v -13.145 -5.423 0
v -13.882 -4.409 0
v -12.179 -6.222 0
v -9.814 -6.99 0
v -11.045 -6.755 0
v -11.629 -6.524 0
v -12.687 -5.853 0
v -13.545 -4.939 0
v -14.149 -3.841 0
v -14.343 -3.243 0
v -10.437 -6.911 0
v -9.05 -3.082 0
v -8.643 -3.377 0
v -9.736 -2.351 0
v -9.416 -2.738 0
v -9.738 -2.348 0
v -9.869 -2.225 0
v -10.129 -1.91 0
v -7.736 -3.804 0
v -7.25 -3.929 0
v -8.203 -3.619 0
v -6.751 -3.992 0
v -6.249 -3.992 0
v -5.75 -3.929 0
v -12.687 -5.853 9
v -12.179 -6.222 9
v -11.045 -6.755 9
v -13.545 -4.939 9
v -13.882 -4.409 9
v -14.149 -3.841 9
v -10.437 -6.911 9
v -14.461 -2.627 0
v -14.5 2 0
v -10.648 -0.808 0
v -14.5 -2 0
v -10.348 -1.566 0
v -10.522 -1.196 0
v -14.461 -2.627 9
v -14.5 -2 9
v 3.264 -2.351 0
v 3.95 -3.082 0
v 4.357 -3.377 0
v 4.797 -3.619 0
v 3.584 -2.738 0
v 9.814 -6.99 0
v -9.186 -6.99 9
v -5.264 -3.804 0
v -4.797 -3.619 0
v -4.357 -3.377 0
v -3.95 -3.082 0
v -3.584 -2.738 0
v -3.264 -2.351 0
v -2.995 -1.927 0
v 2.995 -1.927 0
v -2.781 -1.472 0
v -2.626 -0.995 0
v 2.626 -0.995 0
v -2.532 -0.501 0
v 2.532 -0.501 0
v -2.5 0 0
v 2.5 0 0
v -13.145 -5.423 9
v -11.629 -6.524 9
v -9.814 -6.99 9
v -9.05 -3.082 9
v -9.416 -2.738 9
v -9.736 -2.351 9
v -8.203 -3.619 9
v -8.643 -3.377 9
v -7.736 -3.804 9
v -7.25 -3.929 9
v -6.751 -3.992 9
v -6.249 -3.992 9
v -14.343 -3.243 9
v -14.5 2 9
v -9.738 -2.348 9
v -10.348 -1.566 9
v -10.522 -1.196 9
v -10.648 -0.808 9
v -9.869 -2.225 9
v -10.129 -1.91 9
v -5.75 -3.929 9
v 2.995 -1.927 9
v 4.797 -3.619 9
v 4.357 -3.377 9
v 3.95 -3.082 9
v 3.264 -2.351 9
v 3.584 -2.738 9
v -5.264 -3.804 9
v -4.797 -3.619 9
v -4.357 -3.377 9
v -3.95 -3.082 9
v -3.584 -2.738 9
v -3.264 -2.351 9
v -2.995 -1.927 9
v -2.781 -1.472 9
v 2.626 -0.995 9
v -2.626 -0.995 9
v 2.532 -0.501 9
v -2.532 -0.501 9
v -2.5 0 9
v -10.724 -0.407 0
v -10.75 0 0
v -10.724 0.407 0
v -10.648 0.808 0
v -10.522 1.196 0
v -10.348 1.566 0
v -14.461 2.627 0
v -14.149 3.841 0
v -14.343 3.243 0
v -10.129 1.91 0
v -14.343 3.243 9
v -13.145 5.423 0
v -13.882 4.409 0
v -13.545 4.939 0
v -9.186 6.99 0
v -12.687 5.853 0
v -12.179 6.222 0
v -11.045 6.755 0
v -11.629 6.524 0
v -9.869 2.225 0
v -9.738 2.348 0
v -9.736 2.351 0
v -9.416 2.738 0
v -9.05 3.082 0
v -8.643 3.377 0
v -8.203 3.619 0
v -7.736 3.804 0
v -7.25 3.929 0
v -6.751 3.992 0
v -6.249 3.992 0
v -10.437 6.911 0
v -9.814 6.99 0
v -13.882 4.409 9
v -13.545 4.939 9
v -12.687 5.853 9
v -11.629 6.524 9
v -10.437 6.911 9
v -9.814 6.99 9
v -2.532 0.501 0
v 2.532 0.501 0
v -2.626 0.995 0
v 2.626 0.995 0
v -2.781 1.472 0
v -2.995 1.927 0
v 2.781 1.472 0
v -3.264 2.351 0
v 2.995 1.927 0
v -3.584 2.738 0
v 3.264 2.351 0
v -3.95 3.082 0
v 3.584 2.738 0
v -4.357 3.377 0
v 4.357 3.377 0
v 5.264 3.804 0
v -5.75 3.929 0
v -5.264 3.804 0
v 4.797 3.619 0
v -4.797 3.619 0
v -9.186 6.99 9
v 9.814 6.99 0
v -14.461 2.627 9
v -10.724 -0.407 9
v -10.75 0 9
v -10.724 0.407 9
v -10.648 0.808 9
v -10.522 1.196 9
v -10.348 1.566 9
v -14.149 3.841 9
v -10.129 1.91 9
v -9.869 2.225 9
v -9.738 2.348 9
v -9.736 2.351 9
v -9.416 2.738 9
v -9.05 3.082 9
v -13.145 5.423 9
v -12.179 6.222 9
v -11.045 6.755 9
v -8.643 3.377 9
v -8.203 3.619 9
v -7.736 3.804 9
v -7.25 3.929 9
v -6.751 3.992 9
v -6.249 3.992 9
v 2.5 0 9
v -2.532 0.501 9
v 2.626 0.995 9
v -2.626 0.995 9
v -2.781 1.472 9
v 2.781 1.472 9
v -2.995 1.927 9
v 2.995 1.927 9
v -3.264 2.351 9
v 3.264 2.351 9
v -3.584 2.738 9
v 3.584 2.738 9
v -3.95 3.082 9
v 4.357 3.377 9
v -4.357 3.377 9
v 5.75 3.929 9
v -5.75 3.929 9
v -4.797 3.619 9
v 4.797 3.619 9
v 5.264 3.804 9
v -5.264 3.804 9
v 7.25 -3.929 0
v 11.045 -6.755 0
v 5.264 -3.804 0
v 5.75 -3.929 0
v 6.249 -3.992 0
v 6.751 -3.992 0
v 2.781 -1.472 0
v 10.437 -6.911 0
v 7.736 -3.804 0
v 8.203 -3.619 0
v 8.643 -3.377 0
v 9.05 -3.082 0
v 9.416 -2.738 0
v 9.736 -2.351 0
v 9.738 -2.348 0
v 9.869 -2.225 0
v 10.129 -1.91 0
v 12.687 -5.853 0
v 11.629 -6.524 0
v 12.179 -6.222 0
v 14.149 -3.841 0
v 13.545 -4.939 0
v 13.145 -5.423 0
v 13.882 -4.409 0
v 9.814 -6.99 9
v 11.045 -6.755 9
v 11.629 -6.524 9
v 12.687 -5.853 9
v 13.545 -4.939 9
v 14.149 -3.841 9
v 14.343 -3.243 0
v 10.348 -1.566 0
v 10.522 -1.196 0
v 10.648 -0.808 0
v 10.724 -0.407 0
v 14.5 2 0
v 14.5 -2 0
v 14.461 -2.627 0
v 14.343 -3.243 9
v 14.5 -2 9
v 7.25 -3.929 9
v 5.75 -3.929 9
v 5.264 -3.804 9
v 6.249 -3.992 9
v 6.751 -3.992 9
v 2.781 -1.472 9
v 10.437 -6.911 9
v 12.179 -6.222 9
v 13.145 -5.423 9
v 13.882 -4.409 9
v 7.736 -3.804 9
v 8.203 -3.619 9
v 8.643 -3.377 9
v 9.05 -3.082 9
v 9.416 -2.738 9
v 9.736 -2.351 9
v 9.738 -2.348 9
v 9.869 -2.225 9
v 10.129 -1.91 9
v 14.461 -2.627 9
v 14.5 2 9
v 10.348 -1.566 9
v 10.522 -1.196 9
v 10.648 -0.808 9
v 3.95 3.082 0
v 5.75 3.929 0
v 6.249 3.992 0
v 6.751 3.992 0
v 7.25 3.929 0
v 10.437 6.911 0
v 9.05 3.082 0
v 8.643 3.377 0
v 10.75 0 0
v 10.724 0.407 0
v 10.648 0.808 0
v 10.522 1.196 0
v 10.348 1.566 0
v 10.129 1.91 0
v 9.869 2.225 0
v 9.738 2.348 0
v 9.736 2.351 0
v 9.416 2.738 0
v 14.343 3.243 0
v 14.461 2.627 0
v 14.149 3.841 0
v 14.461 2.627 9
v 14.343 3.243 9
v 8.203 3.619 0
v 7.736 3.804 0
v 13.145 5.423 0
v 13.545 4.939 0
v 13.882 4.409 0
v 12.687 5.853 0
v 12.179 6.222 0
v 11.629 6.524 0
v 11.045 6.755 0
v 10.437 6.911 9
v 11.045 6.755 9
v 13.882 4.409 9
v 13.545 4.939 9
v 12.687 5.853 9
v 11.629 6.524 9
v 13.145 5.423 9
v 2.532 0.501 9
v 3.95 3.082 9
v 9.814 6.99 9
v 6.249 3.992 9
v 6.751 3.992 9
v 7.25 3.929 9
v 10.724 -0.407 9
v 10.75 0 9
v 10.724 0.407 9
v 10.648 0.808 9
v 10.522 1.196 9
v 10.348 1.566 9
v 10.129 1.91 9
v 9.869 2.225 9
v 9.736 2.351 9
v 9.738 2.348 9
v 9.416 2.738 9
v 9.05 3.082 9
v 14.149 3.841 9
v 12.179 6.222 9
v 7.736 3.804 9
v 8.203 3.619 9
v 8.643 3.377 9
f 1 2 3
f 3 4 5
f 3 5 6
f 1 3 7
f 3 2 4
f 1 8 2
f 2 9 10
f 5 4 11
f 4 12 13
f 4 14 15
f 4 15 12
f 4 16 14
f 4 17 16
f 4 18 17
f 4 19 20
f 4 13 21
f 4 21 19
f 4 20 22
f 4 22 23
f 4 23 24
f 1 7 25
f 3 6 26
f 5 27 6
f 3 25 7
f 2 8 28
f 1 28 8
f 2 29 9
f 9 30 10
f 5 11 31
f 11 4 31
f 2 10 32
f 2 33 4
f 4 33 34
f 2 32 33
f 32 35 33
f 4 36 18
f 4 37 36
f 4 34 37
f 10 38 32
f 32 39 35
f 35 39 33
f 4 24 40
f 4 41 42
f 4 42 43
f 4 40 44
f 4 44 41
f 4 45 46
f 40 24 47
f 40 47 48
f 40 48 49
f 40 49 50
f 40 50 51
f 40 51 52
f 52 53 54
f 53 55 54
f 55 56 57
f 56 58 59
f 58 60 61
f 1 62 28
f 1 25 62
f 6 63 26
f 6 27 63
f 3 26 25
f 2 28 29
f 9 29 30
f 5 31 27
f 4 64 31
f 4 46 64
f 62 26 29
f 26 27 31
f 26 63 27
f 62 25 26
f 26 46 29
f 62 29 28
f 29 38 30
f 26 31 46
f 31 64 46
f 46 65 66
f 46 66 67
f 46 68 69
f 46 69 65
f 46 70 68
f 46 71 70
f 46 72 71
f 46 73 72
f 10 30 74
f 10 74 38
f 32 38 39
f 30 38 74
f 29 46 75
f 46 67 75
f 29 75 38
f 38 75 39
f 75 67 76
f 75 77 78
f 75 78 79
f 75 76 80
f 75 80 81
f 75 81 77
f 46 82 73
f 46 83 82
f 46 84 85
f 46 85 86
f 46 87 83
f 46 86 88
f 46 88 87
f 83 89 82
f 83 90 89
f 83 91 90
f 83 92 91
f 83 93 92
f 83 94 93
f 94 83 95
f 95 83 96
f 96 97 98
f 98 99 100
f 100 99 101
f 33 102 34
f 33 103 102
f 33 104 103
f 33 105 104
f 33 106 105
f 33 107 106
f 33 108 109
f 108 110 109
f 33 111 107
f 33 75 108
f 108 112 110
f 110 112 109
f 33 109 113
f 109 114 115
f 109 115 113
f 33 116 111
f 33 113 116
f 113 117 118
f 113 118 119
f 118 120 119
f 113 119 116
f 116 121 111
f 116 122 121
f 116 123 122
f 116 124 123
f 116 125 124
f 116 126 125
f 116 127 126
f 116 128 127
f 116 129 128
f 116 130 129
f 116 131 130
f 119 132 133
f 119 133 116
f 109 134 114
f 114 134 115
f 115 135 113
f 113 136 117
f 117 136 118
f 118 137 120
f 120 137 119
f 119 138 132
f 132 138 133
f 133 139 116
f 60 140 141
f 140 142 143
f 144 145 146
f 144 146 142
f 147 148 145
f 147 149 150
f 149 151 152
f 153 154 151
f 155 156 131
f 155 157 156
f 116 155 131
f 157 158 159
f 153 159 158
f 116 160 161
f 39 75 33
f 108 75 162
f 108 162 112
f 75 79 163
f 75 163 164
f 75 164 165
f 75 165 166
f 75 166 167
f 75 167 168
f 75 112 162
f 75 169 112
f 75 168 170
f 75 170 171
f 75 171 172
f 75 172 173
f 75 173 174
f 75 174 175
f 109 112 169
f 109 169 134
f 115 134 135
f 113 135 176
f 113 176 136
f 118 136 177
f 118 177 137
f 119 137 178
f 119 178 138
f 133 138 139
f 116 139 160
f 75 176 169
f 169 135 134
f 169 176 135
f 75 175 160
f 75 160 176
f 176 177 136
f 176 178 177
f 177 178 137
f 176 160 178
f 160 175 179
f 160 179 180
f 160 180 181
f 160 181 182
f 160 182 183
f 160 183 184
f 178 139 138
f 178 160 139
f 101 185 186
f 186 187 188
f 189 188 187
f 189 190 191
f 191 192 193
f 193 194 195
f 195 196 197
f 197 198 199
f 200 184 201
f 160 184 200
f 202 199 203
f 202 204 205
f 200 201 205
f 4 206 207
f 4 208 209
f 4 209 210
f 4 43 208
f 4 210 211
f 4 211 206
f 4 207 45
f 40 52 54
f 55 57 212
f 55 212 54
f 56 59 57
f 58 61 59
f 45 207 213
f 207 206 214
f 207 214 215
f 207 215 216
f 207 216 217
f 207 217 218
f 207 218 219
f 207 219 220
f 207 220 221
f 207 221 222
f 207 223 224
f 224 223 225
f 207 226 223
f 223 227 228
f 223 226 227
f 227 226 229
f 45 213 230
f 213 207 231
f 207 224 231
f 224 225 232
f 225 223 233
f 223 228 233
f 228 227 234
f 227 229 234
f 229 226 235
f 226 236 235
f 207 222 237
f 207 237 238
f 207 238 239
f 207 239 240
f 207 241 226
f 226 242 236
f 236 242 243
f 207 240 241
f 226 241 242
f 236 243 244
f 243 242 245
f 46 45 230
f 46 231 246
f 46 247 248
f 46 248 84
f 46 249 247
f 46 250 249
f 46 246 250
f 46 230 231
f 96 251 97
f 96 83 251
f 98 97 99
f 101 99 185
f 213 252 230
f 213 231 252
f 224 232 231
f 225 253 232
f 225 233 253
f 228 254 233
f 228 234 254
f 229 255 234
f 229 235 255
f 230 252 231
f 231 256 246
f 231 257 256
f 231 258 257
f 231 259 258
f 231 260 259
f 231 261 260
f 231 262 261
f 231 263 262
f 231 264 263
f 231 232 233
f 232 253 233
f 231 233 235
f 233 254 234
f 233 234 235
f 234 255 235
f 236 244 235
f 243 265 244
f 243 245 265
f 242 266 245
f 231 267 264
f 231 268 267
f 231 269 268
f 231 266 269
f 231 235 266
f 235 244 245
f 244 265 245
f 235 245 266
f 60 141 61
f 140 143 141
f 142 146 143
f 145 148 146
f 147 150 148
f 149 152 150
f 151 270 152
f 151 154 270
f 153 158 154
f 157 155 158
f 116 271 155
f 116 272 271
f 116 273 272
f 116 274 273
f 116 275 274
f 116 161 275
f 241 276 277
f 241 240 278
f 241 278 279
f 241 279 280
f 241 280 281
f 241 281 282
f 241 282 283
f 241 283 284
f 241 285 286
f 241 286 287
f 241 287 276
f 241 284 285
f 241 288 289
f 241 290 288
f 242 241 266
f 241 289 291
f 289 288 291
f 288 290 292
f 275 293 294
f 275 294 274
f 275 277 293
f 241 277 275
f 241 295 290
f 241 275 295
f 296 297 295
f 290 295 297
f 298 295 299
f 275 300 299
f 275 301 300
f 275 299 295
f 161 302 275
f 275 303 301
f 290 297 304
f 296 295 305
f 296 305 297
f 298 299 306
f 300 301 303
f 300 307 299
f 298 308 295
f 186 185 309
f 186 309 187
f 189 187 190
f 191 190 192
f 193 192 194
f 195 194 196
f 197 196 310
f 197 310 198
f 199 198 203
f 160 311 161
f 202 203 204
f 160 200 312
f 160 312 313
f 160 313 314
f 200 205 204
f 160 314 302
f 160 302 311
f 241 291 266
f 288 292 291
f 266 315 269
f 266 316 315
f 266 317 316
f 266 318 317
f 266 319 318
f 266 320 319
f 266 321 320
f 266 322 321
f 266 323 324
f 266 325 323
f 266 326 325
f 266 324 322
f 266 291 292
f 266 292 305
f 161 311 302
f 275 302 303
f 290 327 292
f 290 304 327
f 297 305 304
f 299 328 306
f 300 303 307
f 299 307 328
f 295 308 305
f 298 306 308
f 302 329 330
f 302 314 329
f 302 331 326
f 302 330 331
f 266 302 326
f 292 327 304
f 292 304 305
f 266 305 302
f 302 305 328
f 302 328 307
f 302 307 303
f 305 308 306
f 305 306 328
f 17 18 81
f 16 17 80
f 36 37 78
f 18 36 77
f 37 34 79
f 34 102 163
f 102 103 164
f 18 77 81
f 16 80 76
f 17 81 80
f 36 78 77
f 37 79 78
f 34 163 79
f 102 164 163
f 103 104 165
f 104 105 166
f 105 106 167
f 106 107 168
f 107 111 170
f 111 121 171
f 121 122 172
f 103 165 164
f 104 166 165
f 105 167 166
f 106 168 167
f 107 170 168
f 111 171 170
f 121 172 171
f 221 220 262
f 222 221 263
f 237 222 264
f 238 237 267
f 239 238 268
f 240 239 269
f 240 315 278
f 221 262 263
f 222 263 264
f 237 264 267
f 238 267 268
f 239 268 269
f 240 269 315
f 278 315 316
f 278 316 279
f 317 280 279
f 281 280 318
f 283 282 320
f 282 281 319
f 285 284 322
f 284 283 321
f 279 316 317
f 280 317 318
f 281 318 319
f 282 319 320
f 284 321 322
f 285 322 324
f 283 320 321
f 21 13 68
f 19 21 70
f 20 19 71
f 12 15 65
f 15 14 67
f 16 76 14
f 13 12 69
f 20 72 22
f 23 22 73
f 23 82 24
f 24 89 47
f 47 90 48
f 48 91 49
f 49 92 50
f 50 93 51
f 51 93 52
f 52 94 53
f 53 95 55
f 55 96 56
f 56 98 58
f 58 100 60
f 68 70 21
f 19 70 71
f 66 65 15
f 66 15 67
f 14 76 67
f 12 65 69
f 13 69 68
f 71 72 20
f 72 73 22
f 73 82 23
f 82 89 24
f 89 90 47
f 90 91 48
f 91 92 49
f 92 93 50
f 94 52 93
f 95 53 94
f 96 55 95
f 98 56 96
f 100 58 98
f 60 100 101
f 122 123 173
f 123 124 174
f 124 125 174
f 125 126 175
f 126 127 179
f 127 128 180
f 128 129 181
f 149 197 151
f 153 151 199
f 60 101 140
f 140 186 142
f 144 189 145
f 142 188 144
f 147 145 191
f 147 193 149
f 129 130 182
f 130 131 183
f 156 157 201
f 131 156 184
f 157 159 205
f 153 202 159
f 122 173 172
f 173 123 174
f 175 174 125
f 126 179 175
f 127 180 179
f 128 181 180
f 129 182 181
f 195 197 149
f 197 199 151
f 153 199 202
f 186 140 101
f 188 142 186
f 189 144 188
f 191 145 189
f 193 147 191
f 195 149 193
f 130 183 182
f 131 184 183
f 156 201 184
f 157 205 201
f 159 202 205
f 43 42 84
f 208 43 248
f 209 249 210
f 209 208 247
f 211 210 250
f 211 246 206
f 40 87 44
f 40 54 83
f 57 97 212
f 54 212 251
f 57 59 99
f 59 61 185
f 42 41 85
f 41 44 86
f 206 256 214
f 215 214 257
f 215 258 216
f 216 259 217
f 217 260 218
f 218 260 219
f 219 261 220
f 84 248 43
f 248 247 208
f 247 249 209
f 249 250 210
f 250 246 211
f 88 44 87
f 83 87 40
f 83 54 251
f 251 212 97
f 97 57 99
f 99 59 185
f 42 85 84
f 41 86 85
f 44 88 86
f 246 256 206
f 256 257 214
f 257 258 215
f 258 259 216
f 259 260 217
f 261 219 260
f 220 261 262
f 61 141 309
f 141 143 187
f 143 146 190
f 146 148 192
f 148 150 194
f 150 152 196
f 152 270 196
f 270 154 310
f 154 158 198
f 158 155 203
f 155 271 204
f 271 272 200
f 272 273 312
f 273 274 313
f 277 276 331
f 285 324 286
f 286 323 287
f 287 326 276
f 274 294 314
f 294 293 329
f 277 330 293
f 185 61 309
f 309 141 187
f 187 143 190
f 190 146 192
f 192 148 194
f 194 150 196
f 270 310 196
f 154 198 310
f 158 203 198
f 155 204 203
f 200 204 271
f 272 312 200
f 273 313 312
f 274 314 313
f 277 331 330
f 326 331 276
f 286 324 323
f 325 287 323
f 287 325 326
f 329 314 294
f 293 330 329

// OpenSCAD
$fn = 50;

difference() {
	union() {
		hull() {
			translate(v = [-9.5, 2.0, 0]) {
				cylinder(h = 9, r = 5);
			}
			translate(v = [9.5, 2.0, 0]) {
				cylinder(h = 9, r = 5);
			}
			translate(v = [-9.5, -2.0, 0]) {
				cylinder(h = 9, r = 5);
			}
			translate(v = [9.5, -2.0, 0]) {
				cylinder(h = 9, r = 5);
			}
		}
	}
	union() {
		translate(v = [-7.5, 0.0, -100.0]) {
			cylinder(h = 200, r = 3.25);
		}
		translate(v = [7.5, 0.0, -100.0]) {
			cylinder(h = 200, r = 3.25);
		}
		translate(v = [-7.5, 0.0, -100.0]) {
			cylinder(h = 200, r = 1.8);
		}
		translate(v = [7.5, 0.0, -100.0]) {
			cylinder(h = 200, r = 1.8);
		}
		translate(v = [-6.5, 0, 0.0]) {
			cylinder(h = 9, r = 4.0);
		}
		translate(v = [6.5, 0, 0.0]) {
			cylinder(h = 9, r = 4.0);
		}
	}
}
